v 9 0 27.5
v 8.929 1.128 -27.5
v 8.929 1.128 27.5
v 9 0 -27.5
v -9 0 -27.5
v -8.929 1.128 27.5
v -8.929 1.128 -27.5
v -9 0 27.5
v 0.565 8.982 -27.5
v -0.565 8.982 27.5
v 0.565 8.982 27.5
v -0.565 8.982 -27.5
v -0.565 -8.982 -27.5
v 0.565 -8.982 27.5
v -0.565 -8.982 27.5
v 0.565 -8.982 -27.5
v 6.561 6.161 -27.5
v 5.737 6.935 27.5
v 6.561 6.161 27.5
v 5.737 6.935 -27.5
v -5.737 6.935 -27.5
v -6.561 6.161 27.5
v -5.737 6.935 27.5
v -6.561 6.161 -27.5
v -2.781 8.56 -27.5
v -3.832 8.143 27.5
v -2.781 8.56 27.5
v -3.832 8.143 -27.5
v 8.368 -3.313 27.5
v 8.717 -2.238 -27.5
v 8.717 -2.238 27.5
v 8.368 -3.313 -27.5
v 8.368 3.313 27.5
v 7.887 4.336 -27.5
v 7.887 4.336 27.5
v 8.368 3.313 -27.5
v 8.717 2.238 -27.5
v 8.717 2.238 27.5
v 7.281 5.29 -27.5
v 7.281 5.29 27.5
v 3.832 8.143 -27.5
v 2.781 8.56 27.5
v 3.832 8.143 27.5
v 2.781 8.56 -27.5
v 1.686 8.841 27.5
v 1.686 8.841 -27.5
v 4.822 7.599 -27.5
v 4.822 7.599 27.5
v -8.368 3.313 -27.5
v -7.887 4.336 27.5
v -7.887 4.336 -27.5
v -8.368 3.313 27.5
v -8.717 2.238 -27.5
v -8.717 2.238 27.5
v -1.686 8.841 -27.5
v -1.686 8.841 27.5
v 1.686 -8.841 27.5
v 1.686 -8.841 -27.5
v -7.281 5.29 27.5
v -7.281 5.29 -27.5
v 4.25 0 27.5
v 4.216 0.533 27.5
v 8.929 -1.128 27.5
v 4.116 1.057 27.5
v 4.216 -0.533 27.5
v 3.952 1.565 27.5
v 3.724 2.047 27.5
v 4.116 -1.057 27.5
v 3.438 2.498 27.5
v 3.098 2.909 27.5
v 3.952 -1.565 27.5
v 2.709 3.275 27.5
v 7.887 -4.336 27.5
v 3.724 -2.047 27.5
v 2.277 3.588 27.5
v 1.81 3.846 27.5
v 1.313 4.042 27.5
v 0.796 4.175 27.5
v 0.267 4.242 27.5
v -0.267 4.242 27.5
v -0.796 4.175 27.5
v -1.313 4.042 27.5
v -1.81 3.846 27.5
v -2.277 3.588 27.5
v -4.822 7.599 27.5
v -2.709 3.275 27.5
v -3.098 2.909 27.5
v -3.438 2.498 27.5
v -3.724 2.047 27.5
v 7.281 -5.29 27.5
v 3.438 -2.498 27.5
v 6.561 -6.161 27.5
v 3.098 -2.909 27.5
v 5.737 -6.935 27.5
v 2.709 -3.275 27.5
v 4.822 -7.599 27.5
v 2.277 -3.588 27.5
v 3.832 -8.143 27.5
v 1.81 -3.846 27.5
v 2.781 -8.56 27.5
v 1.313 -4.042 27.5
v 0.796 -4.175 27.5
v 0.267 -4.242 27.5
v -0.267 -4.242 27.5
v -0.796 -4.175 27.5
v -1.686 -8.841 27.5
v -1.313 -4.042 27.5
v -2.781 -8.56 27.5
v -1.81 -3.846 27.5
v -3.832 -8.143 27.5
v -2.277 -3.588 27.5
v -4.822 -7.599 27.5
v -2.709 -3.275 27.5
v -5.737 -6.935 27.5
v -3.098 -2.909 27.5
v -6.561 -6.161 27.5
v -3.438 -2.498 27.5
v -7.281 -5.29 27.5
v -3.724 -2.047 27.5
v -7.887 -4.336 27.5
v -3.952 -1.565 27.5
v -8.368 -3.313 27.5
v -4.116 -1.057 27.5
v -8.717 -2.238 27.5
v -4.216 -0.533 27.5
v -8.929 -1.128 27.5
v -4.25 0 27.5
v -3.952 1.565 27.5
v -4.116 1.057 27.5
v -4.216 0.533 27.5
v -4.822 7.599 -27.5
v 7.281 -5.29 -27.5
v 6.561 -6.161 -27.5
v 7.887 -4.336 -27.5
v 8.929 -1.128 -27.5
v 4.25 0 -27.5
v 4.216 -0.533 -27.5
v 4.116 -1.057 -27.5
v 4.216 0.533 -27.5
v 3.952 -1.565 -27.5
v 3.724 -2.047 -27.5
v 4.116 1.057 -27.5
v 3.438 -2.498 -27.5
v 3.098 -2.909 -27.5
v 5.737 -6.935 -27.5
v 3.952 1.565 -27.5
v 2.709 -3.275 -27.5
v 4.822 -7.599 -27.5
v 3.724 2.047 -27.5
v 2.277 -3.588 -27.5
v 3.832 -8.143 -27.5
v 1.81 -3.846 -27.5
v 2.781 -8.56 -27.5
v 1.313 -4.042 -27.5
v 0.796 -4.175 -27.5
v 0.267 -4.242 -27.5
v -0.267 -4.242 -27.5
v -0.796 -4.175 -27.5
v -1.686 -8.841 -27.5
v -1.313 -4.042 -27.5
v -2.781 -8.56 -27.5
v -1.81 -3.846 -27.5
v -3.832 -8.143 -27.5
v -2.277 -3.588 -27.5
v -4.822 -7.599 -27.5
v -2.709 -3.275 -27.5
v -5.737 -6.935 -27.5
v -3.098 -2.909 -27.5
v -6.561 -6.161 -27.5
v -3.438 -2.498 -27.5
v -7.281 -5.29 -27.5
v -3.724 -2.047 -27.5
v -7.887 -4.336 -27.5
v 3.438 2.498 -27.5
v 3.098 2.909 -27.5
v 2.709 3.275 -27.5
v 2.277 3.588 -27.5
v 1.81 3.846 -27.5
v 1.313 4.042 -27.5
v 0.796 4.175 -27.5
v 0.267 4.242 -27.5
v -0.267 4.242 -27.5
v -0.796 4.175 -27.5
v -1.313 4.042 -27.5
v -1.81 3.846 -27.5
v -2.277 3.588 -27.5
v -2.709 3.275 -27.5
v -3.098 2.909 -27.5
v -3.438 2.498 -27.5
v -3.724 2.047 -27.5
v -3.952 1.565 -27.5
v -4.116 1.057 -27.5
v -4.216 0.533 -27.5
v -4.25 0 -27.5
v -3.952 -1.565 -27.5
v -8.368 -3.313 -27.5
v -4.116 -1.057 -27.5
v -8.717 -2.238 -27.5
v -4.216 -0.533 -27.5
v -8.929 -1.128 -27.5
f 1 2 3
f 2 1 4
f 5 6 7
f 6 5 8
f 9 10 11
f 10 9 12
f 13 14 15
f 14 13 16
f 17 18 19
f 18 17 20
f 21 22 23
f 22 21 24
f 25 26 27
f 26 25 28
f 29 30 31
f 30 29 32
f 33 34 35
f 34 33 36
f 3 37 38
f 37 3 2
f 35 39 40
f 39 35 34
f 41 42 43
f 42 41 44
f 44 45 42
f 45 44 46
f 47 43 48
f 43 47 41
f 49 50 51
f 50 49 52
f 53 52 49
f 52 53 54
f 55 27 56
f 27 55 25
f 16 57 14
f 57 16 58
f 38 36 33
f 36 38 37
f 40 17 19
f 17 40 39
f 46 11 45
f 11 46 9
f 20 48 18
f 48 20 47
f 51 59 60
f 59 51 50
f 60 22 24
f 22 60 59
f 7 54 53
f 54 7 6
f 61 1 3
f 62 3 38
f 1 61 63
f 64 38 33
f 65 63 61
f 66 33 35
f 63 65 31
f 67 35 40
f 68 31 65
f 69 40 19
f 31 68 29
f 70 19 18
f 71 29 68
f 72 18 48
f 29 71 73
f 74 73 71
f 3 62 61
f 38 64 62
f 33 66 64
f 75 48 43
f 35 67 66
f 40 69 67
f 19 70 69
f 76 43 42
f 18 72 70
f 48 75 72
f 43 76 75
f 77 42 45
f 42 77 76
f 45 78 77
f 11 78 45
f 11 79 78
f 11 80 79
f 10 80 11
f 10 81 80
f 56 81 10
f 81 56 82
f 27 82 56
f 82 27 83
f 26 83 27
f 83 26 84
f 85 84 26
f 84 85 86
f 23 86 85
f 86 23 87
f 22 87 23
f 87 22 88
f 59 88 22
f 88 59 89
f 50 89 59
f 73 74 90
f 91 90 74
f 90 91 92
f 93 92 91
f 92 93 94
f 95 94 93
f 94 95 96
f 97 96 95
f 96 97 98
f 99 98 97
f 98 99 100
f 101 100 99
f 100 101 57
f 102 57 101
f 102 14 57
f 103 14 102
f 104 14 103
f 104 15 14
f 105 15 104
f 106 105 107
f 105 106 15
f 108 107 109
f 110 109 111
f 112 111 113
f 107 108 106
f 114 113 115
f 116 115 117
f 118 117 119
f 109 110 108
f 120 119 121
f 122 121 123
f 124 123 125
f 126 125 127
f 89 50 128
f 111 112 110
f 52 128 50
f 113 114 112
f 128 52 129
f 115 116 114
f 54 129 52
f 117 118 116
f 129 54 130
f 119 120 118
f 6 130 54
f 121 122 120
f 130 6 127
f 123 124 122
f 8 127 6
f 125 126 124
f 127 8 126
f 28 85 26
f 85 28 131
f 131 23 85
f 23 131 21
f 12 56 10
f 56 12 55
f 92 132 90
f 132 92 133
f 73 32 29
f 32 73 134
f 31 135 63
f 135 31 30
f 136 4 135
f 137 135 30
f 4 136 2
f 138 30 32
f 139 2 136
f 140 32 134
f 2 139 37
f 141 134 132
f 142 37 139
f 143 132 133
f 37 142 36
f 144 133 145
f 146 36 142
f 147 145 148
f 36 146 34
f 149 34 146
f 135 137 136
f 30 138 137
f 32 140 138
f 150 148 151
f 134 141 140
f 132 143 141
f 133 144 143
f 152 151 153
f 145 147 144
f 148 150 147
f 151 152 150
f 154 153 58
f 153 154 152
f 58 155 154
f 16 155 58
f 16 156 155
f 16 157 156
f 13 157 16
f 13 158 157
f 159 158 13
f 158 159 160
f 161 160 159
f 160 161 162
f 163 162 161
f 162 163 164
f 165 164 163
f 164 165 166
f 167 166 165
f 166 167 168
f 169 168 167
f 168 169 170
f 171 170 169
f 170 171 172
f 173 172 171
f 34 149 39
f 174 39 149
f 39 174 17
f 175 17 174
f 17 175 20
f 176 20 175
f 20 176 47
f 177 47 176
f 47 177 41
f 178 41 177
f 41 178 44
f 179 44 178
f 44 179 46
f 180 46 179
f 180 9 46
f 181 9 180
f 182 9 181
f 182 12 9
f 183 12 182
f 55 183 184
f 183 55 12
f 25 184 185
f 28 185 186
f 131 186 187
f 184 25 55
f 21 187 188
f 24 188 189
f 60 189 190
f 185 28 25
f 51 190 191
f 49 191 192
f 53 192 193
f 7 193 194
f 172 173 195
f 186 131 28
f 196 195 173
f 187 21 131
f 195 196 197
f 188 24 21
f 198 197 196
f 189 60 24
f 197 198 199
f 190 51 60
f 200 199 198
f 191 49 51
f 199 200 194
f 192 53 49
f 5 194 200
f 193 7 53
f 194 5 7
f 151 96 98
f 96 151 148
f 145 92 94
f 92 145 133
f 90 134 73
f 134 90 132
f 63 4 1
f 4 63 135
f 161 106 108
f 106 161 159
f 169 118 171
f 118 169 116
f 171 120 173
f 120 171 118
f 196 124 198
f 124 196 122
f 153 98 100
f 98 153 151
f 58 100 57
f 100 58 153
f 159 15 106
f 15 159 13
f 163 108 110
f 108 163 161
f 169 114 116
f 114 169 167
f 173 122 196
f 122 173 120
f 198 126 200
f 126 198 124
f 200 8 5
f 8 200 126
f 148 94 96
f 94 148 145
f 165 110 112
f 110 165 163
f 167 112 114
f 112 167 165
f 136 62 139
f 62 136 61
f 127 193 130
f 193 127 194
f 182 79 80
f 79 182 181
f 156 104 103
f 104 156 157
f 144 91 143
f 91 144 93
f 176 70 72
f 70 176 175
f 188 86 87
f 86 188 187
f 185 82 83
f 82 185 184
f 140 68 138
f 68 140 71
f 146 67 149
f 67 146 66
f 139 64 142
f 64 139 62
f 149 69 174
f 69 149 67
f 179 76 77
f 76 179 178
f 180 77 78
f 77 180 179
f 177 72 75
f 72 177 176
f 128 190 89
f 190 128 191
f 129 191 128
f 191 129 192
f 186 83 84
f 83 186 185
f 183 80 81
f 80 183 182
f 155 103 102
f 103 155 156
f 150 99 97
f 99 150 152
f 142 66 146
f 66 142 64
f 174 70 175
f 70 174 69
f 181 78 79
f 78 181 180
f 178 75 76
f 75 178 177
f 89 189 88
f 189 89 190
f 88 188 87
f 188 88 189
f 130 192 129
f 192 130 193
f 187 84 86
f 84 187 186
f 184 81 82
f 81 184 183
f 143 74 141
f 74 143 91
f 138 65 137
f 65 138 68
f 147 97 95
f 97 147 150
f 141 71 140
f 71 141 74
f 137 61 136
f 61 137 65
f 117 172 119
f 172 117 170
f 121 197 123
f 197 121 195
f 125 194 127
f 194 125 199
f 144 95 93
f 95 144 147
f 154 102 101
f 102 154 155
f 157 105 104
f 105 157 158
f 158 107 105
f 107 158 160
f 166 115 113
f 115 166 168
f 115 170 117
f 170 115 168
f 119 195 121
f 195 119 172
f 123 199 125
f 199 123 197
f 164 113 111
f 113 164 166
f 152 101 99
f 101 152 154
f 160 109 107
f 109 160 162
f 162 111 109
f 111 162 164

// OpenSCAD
$fn = 50;


difference() {
	union() {
		translate(v = [0, 0, -27.5000000000]) {
			cylinder(h = 55, r = 9.0000000000);
		}
	}
	union() {
		translate(v = [0, 0, -100.0000000000]) {
			cylinder(h = 200, r = 4.2500000000);
		}
	}
}
